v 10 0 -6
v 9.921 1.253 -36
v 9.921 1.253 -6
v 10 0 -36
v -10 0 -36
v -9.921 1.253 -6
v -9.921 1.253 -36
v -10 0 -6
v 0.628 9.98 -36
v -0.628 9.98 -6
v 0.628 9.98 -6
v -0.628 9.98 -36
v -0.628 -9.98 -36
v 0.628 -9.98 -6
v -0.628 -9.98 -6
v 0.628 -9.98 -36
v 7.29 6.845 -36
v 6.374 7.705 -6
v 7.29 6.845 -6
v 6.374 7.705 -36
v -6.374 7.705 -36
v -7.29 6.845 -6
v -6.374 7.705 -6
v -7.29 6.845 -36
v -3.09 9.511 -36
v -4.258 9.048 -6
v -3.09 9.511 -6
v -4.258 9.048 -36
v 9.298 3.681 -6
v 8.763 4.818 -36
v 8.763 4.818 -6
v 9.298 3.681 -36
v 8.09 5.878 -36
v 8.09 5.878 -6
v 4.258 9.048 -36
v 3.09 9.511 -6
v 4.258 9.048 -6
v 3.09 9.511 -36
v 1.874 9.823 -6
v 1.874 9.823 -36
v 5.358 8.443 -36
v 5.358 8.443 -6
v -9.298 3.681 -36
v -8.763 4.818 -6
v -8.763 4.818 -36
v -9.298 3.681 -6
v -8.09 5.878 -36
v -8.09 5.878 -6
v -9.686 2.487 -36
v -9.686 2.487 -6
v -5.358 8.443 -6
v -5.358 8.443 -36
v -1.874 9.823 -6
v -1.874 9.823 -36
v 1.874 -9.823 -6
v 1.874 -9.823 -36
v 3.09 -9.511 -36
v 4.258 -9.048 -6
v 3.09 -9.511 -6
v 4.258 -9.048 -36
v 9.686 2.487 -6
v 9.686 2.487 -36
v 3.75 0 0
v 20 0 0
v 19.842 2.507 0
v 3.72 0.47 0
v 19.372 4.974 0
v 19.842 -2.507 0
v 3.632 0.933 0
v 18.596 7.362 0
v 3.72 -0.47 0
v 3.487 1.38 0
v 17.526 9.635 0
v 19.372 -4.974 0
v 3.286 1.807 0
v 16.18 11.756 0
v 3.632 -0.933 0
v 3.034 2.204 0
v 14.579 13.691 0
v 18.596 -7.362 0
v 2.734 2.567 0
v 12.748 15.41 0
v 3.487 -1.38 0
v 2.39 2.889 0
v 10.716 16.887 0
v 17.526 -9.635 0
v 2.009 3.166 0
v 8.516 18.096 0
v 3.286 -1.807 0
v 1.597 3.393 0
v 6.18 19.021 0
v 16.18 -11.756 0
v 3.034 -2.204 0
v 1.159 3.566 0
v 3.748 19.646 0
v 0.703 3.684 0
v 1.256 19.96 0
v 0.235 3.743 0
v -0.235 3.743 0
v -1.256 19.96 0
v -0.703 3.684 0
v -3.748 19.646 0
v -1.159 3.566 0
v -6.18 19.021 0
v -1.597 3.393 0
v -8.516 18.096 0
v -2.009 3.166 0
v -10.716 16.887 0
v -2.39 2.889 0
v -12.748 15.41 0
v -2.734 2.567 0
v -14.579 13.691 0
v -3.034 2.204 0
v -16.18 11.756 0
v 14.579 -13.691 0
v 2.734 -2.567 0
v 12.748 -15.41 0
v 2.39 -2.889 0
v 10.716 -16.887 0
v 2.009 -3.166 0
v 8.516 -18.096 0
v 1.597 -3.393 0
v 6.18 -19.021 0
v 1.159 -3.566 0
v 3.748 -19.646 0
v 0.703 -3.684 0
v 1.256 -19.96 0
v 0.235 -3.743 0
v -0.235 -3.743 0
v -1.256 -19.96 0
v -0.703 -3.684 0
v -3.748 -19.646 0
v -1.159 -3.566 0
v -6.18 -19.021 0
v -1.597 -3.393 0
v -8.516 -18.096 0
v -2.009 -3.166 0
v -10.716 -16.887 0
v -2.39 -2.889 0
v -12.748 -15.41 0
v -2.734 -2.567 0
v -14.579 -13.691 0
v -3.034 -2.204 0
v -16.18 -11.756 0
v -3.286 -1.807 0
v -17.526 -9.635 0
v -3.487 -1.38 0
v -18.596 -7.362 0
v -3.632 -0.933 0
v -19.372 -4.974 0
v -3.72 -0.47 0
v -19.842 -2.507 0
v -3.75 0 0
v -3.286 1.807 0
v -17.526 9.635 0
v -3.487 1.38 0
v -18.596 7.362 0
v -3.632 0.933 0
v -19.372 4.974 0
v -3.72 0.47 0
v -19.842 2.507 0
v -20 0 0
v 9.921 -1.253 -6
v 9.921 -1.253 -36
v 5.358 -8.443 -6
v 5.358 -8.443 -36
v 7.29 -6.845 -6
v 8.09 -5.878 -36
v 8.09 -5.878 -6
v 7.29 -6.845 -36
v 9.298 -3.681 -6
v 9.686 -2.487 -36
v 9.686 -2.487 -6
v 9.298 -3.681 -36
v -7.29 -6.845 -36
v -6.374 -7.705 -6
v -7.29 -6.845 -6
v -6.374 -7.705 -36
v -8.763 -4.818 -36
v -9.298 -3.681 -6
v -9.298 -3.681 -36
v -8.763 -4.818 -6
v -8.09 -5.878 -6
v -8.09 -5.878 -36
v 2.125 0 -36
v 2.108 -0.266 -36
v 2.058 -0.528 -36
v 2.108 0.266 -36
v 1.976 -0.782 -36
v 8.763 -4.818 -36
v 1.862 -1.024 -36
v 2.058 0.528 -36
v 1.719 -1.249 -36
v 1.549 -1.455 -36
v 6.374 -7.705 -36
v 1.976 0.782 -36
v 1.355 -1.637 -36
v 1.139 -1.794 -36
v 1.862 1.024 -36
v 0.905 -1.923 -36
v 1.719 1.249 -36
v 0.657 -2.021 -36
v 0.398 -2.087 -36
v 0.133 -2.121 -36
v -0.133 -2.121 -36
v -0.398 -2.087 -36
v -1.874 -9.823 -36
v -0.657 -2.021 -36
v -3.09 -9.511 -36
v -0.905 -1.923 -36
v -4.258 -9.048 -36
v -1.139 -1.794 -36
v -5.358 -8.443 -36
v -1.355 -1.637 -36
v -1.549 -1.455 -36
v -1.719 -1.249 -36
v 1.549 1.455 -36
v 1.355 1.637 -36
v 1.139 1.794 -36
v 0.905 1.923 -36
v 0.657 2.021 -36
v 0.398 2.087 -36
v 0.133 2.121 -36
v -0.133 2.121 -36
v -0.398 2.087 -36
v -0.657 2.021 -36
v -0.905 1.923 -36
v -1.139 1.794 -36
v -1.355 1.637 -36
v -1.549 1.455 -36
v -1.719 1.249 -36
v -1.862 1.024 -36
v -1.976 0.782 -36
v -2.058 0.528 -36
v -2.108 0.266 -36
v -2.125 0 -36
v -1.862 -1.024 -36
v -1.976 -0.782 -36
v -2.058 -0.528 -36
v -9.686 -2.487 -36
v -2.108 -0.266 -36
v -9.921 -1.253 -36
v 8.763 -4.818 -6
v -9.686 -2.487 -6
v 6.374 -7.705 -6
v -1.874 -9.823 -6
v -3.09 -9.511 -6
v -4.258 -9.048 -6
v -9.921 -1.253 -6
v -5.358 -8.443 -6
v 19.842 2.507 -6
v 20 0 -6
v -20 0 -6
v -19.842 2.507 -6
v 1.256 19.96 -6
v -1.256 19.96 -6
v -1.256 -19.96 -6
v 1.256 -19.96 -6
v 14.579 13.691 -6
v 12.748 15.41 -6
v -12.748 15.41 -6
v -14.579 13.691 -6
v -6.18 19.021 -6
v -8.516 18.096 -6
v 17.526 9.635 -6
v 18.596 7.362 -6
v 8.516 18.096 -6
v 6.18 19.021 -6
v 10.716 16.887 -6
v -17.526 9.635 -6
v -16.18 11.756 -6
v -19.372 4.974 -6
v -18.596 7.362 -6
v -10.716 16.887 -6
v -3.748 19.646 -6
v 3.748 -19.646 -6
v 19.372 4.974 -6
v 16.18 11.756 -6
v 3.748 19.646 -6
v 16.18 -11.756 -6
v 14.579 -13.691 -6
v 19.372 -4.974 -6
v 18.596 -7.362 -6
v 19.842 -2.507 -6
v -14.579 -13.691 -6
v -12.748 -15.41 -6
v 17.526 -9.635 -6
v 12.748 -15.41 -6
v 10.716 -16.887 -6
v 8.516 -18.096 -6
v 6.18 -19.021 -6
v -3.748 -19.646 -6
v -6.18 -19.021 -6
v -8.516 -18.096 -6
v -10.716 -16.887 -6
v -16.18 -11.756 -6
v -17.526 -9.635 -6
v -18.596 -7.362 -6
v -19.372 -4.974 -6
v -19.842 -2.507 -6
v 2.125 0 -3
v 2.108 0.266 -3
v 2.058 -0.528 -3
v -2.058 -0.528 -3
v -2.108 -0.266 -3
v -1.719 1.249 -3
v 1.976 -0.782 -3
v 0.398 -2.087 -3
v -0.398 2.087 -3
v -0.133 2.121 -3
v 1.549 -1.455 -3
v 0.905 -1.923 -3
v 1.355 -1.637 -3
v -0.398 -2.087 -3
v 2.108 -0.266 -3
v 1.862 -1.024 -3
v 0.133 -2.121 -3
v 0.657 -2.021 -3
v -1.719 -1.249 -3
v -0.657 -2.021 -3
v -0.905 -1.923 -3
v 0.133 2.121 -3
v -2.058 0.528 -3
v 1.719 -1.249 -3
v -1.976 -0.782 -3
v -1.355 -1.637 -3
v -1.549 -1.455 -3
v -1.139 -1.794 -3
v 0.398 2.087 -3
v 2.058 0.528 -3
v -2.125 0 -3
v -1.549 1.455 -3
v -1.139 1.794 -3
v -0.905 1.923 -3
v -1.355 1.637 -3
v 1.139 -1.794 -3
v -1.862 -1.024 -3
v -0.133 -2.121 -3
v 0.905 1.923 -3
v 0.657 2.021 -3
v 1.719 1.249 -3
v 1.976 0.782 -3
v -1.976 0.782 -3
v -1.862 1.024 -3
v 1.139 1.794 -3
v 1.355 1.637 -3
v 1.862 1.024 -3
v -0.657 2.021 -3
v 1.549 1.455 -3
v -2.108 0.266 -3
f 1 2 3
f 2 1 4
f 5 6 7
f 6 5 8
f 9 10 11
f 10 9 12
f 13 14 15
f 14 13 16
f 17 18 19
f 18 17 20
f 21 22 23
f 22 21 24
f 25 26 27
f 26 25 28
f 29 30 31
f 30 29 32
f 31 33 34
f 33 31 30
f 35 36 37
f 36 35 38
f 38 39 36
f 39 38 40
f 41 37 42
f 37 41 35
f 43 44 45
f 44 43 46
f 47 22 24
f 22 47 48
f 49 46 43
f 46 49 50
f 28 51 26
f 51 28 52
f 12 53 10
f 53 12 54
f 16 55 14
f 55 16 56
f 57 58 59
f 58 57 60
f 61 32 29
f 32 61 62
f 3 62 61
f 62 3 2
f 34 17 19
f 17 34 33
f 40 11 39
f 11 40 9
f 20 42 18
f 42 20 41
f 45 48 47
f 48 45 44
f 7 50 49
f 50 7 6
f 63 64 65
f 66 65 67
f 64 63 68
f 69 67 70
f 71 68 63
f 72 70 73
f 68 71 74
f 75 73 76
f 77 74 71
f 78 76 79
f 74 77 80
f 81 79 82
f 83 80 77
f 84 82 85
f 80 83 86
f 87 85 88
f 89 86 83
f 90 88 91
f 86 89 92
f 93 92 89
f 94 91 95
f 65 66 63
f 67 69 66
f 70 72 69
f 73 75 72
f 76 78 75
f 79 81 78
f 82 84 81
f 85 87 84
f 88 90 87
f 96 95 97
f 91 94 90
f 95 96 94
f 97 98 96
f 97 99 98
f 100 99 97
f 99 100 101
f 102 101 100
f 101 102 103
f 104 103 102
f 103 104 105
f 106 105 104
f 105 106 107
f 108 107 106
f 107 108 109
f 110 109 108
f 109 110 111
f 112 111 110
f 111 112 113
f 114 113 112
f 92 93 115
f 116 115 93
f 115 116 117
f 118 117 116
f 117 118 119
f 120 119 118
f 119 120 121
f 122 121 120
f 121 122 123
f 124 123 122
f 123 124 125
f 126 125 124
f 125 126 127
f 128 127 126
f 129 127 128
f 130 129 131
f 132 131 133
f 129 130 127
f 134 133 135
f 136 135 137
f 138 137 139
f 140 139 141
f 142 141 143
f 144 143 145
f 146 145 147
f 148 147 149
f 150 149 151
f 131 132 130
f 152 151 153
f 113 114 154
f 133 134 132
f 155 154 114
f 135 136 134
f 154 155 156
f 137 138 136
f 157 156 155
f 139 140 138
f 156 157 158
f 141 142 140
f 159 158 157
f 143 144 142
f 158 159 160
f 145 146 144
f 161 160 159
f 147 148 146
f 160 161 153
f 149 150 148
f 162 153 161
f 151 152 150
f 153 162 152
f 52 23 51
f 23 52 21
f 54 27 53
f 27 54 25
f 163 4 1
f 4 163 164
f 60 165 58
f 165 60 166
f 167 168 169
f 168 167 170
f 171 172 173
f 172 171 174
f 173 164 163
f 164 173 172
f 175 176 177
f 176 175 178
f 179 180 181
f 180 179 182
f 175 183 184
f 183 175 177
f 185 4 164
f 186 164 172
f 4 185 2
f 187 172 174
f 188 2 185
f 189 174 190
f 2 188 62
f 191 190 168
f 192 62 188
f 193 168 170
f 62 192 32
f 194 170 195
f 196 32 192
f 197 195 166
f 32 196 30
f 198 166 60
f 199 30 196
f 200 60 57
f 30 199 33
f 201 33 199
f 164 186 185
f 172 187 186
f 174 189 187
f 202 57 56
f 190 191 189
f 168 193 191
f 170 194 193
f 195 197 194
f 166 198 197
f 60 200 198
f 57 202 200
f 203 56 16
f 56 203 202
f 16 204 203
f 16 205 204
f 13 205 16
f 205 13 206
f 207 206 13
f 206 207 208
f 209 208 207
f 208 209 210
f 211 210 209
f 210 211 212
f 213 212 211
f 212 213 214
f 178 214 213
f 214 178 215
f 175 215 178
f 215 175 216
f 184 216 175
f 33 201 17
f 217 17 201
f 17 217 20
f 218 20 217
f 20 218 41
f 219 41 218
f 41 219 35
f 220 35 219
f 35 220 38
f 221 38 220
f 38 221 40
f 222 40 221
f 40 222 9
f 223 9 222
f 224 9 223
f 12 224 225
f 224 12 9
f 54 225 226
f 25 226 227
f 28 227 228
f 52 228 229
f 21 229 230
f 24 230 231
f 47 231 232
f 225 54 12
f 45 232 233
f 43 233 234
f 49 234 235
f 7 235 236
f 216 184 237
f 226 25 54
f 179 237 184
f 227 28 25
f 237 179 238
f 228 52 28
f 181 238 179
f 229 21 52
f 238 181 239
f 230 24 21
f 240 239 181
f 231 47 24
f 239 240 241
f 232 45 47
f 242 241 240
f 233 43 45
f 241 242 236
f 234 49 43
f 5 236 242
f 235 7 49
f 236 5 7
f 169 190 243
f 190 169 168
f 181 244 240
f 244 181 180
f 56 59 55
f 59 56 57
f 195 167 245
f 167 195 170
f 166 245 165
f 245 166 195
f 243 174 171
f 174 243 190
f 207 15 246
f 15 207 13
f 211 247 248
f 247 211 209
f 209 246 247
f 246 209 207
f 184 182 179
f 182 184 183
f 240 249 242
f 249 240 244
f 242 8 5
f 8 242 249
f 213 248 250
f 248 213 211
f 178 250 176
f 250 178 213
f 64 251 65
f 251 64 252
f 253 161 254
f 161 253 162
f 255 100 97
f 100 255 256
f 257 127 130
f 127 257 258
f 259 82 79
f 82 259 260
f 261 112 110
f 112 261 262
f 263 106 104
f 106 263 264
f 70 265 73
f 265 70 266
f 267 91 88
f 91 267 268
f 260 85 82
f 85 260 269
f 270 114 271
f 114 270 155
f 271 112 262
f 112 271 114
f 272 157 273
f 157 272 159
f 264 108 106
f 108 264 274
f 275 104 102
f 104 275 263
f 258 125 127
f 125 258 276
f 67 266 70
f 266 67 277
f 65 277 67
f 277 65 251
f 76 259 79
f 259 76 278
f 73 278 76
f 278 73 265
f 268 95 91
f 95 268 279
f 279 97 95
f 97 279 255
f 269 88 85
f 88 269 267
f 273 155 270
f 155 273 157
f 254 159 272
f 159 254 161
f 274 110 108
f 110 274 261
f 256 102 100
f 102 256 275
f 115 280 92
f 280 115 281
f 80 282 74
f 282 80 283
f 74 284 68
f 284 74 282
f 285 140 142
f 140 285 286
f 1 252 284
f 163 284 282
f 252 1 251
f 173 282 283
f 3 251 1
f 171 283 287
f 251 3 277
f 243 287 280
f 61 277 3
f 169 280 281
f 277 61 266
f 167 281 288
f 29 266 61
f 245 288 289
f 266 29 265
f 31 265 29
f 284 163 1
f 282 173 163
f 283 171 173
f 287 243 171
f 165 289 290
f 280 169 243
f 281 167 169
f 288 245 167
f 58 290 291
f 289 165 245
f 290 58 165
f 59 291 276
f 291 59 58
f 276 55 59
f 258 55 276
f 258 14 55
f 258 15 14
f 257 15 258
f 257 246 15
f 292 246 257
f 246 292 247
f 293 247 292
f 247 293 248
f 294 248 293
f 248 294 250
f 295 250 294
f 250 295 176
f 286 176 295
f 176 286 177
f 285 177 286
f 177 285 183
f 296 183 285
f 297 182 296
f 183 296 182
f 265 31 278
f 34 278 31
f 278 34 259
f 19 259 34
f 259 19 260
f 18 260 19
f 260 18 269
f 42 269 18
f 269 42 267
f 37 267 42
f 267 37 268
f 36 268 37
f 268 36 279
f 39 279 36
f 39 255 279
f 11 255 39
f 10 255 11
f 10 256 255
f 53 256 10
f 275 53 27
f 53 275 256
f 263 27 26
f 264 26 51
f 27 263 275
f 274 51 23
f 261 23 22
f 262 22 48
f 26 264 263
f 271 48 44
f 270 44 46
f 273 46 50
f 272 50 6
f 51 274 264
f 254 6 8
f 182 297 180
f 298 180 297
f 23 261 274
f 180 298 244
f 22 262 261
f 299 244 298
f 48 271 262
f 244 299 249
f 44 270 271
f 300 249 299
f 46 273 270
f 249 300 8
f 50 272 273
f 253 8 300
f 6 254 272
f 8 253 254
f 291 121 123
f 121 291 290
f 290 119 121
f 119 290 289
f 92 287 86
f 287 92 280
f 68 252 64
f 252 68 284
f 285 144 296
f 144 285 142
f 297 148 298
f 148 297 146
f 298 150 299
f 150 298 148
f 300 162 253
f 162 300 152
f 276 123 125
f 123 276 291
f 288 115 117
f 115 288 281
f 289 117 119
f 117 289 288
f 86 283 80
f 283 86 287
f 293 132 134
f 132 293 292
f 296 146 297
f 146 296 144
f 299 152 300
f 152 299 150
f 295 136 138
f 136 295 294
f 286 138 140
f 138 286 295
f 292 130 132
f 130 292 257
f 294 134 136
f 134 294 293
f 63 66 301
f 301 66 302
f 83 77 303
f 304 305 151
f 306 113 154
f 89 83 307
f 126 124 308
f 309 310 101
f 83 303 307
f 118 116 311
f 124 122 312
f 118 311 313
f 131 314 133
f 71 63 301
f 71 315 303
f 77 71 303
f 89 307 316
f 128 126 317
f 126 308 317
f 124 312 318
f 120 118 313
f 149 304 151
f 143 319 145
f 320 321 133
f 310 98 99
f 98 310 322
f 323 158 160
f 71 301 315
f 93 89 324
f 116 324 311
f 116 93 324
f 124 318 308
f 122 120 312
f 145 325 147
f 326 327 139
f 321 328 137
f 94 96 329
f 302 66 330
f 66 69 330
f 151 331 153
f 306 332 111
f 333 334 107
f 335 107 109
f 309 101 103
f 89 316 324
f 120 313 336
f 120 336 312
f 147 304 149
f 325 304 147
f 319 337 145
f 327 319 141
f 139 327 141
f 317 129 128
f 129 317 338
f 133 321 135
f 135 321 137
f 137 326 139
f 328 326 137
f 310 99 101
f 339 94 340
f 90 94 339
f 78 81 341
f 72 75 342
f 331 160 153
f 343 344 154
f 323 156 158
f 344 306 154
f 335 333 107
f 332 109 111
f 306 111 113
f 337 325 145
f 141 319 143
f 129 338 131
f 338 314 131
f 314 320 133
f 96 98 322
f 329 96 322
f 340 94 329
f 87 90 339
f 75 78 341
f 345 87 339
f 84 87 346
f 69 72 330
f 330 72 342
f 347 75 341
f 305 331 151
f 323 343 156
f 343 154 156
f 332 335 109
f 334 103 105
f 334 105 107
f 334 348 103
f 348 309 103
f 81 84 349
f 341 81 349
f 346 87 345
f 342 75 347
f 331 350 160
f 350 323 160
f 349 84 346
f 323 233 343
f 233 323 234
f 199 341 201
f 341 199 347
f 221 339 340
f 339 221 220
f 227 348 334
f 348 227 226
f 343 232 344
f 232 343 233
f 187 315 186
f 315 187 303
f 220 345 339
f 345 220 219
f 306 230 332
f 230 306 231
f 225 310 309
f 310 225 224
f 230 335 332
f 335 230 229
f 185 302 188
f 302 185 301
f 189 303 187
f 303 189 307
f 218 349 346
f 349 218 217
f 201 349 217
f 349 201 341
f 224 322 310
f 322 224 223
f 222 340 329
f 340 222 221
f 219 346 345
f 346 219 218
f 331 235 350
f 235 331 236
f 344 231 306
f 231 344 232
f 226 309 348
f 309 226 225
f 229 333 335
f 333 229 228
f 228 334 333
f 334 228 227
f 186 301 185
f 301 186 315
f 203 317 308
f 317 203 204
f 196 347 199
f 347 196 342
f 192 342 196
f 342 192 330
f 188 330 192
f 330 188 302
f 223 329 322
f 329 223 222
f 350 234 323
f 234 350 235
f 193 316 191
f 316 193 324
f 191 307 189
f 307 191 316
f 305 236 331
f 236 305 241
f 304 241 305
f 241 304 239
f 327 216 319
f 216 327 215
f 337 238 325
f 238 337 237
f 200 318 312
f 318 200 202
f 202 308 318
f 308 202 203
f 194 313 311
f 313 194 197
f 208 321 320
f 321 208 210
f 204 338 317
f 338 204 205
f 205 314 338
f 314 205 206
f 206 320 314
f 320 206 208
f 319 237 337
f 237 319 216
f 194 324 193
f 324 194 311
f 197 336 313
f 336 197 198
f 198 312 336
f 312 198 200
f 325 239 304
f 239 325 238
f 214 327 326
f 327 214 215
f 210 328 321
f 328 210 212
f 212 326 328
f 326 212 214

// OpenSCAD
$fn = 50;


difference() {
	union() {
		translate(v = [0, 0, -36.0000000000]) {
			cylinder(h = 36, r = 10.0000000000);
		}
		translate(v = [0, 0, -6.0000000000]) {
			cylinder(h = 6, r = 20.0000000000);
		}
	}
	union() {
		translate(v = [0, 0, 0]) {
			rotate(a = [0, 0, 0]) {
				difference() {
					union() {
						#translate(v = [0, 0, -36.0000000000]) {
							cylinder(h = 36, r = 2.0000000000);
						}
						#translate(v = [0, 0, -3]) {
							cylinder(h = 3, r = 10.0000000000, r1 = 2.1250000000, r2 = 3.7500000000);
						}
						#translate(v = [0, 0, -36.0000000000]) {
							cylinder(h = 36, r = 2.1250000000);
						}
						#translate(v = [0, 0, -36.0000000000]) {
							cylinder(h = 36, r = 2.0000000000);
						}
					}
					union();
				}
			}
		}
	}
}
